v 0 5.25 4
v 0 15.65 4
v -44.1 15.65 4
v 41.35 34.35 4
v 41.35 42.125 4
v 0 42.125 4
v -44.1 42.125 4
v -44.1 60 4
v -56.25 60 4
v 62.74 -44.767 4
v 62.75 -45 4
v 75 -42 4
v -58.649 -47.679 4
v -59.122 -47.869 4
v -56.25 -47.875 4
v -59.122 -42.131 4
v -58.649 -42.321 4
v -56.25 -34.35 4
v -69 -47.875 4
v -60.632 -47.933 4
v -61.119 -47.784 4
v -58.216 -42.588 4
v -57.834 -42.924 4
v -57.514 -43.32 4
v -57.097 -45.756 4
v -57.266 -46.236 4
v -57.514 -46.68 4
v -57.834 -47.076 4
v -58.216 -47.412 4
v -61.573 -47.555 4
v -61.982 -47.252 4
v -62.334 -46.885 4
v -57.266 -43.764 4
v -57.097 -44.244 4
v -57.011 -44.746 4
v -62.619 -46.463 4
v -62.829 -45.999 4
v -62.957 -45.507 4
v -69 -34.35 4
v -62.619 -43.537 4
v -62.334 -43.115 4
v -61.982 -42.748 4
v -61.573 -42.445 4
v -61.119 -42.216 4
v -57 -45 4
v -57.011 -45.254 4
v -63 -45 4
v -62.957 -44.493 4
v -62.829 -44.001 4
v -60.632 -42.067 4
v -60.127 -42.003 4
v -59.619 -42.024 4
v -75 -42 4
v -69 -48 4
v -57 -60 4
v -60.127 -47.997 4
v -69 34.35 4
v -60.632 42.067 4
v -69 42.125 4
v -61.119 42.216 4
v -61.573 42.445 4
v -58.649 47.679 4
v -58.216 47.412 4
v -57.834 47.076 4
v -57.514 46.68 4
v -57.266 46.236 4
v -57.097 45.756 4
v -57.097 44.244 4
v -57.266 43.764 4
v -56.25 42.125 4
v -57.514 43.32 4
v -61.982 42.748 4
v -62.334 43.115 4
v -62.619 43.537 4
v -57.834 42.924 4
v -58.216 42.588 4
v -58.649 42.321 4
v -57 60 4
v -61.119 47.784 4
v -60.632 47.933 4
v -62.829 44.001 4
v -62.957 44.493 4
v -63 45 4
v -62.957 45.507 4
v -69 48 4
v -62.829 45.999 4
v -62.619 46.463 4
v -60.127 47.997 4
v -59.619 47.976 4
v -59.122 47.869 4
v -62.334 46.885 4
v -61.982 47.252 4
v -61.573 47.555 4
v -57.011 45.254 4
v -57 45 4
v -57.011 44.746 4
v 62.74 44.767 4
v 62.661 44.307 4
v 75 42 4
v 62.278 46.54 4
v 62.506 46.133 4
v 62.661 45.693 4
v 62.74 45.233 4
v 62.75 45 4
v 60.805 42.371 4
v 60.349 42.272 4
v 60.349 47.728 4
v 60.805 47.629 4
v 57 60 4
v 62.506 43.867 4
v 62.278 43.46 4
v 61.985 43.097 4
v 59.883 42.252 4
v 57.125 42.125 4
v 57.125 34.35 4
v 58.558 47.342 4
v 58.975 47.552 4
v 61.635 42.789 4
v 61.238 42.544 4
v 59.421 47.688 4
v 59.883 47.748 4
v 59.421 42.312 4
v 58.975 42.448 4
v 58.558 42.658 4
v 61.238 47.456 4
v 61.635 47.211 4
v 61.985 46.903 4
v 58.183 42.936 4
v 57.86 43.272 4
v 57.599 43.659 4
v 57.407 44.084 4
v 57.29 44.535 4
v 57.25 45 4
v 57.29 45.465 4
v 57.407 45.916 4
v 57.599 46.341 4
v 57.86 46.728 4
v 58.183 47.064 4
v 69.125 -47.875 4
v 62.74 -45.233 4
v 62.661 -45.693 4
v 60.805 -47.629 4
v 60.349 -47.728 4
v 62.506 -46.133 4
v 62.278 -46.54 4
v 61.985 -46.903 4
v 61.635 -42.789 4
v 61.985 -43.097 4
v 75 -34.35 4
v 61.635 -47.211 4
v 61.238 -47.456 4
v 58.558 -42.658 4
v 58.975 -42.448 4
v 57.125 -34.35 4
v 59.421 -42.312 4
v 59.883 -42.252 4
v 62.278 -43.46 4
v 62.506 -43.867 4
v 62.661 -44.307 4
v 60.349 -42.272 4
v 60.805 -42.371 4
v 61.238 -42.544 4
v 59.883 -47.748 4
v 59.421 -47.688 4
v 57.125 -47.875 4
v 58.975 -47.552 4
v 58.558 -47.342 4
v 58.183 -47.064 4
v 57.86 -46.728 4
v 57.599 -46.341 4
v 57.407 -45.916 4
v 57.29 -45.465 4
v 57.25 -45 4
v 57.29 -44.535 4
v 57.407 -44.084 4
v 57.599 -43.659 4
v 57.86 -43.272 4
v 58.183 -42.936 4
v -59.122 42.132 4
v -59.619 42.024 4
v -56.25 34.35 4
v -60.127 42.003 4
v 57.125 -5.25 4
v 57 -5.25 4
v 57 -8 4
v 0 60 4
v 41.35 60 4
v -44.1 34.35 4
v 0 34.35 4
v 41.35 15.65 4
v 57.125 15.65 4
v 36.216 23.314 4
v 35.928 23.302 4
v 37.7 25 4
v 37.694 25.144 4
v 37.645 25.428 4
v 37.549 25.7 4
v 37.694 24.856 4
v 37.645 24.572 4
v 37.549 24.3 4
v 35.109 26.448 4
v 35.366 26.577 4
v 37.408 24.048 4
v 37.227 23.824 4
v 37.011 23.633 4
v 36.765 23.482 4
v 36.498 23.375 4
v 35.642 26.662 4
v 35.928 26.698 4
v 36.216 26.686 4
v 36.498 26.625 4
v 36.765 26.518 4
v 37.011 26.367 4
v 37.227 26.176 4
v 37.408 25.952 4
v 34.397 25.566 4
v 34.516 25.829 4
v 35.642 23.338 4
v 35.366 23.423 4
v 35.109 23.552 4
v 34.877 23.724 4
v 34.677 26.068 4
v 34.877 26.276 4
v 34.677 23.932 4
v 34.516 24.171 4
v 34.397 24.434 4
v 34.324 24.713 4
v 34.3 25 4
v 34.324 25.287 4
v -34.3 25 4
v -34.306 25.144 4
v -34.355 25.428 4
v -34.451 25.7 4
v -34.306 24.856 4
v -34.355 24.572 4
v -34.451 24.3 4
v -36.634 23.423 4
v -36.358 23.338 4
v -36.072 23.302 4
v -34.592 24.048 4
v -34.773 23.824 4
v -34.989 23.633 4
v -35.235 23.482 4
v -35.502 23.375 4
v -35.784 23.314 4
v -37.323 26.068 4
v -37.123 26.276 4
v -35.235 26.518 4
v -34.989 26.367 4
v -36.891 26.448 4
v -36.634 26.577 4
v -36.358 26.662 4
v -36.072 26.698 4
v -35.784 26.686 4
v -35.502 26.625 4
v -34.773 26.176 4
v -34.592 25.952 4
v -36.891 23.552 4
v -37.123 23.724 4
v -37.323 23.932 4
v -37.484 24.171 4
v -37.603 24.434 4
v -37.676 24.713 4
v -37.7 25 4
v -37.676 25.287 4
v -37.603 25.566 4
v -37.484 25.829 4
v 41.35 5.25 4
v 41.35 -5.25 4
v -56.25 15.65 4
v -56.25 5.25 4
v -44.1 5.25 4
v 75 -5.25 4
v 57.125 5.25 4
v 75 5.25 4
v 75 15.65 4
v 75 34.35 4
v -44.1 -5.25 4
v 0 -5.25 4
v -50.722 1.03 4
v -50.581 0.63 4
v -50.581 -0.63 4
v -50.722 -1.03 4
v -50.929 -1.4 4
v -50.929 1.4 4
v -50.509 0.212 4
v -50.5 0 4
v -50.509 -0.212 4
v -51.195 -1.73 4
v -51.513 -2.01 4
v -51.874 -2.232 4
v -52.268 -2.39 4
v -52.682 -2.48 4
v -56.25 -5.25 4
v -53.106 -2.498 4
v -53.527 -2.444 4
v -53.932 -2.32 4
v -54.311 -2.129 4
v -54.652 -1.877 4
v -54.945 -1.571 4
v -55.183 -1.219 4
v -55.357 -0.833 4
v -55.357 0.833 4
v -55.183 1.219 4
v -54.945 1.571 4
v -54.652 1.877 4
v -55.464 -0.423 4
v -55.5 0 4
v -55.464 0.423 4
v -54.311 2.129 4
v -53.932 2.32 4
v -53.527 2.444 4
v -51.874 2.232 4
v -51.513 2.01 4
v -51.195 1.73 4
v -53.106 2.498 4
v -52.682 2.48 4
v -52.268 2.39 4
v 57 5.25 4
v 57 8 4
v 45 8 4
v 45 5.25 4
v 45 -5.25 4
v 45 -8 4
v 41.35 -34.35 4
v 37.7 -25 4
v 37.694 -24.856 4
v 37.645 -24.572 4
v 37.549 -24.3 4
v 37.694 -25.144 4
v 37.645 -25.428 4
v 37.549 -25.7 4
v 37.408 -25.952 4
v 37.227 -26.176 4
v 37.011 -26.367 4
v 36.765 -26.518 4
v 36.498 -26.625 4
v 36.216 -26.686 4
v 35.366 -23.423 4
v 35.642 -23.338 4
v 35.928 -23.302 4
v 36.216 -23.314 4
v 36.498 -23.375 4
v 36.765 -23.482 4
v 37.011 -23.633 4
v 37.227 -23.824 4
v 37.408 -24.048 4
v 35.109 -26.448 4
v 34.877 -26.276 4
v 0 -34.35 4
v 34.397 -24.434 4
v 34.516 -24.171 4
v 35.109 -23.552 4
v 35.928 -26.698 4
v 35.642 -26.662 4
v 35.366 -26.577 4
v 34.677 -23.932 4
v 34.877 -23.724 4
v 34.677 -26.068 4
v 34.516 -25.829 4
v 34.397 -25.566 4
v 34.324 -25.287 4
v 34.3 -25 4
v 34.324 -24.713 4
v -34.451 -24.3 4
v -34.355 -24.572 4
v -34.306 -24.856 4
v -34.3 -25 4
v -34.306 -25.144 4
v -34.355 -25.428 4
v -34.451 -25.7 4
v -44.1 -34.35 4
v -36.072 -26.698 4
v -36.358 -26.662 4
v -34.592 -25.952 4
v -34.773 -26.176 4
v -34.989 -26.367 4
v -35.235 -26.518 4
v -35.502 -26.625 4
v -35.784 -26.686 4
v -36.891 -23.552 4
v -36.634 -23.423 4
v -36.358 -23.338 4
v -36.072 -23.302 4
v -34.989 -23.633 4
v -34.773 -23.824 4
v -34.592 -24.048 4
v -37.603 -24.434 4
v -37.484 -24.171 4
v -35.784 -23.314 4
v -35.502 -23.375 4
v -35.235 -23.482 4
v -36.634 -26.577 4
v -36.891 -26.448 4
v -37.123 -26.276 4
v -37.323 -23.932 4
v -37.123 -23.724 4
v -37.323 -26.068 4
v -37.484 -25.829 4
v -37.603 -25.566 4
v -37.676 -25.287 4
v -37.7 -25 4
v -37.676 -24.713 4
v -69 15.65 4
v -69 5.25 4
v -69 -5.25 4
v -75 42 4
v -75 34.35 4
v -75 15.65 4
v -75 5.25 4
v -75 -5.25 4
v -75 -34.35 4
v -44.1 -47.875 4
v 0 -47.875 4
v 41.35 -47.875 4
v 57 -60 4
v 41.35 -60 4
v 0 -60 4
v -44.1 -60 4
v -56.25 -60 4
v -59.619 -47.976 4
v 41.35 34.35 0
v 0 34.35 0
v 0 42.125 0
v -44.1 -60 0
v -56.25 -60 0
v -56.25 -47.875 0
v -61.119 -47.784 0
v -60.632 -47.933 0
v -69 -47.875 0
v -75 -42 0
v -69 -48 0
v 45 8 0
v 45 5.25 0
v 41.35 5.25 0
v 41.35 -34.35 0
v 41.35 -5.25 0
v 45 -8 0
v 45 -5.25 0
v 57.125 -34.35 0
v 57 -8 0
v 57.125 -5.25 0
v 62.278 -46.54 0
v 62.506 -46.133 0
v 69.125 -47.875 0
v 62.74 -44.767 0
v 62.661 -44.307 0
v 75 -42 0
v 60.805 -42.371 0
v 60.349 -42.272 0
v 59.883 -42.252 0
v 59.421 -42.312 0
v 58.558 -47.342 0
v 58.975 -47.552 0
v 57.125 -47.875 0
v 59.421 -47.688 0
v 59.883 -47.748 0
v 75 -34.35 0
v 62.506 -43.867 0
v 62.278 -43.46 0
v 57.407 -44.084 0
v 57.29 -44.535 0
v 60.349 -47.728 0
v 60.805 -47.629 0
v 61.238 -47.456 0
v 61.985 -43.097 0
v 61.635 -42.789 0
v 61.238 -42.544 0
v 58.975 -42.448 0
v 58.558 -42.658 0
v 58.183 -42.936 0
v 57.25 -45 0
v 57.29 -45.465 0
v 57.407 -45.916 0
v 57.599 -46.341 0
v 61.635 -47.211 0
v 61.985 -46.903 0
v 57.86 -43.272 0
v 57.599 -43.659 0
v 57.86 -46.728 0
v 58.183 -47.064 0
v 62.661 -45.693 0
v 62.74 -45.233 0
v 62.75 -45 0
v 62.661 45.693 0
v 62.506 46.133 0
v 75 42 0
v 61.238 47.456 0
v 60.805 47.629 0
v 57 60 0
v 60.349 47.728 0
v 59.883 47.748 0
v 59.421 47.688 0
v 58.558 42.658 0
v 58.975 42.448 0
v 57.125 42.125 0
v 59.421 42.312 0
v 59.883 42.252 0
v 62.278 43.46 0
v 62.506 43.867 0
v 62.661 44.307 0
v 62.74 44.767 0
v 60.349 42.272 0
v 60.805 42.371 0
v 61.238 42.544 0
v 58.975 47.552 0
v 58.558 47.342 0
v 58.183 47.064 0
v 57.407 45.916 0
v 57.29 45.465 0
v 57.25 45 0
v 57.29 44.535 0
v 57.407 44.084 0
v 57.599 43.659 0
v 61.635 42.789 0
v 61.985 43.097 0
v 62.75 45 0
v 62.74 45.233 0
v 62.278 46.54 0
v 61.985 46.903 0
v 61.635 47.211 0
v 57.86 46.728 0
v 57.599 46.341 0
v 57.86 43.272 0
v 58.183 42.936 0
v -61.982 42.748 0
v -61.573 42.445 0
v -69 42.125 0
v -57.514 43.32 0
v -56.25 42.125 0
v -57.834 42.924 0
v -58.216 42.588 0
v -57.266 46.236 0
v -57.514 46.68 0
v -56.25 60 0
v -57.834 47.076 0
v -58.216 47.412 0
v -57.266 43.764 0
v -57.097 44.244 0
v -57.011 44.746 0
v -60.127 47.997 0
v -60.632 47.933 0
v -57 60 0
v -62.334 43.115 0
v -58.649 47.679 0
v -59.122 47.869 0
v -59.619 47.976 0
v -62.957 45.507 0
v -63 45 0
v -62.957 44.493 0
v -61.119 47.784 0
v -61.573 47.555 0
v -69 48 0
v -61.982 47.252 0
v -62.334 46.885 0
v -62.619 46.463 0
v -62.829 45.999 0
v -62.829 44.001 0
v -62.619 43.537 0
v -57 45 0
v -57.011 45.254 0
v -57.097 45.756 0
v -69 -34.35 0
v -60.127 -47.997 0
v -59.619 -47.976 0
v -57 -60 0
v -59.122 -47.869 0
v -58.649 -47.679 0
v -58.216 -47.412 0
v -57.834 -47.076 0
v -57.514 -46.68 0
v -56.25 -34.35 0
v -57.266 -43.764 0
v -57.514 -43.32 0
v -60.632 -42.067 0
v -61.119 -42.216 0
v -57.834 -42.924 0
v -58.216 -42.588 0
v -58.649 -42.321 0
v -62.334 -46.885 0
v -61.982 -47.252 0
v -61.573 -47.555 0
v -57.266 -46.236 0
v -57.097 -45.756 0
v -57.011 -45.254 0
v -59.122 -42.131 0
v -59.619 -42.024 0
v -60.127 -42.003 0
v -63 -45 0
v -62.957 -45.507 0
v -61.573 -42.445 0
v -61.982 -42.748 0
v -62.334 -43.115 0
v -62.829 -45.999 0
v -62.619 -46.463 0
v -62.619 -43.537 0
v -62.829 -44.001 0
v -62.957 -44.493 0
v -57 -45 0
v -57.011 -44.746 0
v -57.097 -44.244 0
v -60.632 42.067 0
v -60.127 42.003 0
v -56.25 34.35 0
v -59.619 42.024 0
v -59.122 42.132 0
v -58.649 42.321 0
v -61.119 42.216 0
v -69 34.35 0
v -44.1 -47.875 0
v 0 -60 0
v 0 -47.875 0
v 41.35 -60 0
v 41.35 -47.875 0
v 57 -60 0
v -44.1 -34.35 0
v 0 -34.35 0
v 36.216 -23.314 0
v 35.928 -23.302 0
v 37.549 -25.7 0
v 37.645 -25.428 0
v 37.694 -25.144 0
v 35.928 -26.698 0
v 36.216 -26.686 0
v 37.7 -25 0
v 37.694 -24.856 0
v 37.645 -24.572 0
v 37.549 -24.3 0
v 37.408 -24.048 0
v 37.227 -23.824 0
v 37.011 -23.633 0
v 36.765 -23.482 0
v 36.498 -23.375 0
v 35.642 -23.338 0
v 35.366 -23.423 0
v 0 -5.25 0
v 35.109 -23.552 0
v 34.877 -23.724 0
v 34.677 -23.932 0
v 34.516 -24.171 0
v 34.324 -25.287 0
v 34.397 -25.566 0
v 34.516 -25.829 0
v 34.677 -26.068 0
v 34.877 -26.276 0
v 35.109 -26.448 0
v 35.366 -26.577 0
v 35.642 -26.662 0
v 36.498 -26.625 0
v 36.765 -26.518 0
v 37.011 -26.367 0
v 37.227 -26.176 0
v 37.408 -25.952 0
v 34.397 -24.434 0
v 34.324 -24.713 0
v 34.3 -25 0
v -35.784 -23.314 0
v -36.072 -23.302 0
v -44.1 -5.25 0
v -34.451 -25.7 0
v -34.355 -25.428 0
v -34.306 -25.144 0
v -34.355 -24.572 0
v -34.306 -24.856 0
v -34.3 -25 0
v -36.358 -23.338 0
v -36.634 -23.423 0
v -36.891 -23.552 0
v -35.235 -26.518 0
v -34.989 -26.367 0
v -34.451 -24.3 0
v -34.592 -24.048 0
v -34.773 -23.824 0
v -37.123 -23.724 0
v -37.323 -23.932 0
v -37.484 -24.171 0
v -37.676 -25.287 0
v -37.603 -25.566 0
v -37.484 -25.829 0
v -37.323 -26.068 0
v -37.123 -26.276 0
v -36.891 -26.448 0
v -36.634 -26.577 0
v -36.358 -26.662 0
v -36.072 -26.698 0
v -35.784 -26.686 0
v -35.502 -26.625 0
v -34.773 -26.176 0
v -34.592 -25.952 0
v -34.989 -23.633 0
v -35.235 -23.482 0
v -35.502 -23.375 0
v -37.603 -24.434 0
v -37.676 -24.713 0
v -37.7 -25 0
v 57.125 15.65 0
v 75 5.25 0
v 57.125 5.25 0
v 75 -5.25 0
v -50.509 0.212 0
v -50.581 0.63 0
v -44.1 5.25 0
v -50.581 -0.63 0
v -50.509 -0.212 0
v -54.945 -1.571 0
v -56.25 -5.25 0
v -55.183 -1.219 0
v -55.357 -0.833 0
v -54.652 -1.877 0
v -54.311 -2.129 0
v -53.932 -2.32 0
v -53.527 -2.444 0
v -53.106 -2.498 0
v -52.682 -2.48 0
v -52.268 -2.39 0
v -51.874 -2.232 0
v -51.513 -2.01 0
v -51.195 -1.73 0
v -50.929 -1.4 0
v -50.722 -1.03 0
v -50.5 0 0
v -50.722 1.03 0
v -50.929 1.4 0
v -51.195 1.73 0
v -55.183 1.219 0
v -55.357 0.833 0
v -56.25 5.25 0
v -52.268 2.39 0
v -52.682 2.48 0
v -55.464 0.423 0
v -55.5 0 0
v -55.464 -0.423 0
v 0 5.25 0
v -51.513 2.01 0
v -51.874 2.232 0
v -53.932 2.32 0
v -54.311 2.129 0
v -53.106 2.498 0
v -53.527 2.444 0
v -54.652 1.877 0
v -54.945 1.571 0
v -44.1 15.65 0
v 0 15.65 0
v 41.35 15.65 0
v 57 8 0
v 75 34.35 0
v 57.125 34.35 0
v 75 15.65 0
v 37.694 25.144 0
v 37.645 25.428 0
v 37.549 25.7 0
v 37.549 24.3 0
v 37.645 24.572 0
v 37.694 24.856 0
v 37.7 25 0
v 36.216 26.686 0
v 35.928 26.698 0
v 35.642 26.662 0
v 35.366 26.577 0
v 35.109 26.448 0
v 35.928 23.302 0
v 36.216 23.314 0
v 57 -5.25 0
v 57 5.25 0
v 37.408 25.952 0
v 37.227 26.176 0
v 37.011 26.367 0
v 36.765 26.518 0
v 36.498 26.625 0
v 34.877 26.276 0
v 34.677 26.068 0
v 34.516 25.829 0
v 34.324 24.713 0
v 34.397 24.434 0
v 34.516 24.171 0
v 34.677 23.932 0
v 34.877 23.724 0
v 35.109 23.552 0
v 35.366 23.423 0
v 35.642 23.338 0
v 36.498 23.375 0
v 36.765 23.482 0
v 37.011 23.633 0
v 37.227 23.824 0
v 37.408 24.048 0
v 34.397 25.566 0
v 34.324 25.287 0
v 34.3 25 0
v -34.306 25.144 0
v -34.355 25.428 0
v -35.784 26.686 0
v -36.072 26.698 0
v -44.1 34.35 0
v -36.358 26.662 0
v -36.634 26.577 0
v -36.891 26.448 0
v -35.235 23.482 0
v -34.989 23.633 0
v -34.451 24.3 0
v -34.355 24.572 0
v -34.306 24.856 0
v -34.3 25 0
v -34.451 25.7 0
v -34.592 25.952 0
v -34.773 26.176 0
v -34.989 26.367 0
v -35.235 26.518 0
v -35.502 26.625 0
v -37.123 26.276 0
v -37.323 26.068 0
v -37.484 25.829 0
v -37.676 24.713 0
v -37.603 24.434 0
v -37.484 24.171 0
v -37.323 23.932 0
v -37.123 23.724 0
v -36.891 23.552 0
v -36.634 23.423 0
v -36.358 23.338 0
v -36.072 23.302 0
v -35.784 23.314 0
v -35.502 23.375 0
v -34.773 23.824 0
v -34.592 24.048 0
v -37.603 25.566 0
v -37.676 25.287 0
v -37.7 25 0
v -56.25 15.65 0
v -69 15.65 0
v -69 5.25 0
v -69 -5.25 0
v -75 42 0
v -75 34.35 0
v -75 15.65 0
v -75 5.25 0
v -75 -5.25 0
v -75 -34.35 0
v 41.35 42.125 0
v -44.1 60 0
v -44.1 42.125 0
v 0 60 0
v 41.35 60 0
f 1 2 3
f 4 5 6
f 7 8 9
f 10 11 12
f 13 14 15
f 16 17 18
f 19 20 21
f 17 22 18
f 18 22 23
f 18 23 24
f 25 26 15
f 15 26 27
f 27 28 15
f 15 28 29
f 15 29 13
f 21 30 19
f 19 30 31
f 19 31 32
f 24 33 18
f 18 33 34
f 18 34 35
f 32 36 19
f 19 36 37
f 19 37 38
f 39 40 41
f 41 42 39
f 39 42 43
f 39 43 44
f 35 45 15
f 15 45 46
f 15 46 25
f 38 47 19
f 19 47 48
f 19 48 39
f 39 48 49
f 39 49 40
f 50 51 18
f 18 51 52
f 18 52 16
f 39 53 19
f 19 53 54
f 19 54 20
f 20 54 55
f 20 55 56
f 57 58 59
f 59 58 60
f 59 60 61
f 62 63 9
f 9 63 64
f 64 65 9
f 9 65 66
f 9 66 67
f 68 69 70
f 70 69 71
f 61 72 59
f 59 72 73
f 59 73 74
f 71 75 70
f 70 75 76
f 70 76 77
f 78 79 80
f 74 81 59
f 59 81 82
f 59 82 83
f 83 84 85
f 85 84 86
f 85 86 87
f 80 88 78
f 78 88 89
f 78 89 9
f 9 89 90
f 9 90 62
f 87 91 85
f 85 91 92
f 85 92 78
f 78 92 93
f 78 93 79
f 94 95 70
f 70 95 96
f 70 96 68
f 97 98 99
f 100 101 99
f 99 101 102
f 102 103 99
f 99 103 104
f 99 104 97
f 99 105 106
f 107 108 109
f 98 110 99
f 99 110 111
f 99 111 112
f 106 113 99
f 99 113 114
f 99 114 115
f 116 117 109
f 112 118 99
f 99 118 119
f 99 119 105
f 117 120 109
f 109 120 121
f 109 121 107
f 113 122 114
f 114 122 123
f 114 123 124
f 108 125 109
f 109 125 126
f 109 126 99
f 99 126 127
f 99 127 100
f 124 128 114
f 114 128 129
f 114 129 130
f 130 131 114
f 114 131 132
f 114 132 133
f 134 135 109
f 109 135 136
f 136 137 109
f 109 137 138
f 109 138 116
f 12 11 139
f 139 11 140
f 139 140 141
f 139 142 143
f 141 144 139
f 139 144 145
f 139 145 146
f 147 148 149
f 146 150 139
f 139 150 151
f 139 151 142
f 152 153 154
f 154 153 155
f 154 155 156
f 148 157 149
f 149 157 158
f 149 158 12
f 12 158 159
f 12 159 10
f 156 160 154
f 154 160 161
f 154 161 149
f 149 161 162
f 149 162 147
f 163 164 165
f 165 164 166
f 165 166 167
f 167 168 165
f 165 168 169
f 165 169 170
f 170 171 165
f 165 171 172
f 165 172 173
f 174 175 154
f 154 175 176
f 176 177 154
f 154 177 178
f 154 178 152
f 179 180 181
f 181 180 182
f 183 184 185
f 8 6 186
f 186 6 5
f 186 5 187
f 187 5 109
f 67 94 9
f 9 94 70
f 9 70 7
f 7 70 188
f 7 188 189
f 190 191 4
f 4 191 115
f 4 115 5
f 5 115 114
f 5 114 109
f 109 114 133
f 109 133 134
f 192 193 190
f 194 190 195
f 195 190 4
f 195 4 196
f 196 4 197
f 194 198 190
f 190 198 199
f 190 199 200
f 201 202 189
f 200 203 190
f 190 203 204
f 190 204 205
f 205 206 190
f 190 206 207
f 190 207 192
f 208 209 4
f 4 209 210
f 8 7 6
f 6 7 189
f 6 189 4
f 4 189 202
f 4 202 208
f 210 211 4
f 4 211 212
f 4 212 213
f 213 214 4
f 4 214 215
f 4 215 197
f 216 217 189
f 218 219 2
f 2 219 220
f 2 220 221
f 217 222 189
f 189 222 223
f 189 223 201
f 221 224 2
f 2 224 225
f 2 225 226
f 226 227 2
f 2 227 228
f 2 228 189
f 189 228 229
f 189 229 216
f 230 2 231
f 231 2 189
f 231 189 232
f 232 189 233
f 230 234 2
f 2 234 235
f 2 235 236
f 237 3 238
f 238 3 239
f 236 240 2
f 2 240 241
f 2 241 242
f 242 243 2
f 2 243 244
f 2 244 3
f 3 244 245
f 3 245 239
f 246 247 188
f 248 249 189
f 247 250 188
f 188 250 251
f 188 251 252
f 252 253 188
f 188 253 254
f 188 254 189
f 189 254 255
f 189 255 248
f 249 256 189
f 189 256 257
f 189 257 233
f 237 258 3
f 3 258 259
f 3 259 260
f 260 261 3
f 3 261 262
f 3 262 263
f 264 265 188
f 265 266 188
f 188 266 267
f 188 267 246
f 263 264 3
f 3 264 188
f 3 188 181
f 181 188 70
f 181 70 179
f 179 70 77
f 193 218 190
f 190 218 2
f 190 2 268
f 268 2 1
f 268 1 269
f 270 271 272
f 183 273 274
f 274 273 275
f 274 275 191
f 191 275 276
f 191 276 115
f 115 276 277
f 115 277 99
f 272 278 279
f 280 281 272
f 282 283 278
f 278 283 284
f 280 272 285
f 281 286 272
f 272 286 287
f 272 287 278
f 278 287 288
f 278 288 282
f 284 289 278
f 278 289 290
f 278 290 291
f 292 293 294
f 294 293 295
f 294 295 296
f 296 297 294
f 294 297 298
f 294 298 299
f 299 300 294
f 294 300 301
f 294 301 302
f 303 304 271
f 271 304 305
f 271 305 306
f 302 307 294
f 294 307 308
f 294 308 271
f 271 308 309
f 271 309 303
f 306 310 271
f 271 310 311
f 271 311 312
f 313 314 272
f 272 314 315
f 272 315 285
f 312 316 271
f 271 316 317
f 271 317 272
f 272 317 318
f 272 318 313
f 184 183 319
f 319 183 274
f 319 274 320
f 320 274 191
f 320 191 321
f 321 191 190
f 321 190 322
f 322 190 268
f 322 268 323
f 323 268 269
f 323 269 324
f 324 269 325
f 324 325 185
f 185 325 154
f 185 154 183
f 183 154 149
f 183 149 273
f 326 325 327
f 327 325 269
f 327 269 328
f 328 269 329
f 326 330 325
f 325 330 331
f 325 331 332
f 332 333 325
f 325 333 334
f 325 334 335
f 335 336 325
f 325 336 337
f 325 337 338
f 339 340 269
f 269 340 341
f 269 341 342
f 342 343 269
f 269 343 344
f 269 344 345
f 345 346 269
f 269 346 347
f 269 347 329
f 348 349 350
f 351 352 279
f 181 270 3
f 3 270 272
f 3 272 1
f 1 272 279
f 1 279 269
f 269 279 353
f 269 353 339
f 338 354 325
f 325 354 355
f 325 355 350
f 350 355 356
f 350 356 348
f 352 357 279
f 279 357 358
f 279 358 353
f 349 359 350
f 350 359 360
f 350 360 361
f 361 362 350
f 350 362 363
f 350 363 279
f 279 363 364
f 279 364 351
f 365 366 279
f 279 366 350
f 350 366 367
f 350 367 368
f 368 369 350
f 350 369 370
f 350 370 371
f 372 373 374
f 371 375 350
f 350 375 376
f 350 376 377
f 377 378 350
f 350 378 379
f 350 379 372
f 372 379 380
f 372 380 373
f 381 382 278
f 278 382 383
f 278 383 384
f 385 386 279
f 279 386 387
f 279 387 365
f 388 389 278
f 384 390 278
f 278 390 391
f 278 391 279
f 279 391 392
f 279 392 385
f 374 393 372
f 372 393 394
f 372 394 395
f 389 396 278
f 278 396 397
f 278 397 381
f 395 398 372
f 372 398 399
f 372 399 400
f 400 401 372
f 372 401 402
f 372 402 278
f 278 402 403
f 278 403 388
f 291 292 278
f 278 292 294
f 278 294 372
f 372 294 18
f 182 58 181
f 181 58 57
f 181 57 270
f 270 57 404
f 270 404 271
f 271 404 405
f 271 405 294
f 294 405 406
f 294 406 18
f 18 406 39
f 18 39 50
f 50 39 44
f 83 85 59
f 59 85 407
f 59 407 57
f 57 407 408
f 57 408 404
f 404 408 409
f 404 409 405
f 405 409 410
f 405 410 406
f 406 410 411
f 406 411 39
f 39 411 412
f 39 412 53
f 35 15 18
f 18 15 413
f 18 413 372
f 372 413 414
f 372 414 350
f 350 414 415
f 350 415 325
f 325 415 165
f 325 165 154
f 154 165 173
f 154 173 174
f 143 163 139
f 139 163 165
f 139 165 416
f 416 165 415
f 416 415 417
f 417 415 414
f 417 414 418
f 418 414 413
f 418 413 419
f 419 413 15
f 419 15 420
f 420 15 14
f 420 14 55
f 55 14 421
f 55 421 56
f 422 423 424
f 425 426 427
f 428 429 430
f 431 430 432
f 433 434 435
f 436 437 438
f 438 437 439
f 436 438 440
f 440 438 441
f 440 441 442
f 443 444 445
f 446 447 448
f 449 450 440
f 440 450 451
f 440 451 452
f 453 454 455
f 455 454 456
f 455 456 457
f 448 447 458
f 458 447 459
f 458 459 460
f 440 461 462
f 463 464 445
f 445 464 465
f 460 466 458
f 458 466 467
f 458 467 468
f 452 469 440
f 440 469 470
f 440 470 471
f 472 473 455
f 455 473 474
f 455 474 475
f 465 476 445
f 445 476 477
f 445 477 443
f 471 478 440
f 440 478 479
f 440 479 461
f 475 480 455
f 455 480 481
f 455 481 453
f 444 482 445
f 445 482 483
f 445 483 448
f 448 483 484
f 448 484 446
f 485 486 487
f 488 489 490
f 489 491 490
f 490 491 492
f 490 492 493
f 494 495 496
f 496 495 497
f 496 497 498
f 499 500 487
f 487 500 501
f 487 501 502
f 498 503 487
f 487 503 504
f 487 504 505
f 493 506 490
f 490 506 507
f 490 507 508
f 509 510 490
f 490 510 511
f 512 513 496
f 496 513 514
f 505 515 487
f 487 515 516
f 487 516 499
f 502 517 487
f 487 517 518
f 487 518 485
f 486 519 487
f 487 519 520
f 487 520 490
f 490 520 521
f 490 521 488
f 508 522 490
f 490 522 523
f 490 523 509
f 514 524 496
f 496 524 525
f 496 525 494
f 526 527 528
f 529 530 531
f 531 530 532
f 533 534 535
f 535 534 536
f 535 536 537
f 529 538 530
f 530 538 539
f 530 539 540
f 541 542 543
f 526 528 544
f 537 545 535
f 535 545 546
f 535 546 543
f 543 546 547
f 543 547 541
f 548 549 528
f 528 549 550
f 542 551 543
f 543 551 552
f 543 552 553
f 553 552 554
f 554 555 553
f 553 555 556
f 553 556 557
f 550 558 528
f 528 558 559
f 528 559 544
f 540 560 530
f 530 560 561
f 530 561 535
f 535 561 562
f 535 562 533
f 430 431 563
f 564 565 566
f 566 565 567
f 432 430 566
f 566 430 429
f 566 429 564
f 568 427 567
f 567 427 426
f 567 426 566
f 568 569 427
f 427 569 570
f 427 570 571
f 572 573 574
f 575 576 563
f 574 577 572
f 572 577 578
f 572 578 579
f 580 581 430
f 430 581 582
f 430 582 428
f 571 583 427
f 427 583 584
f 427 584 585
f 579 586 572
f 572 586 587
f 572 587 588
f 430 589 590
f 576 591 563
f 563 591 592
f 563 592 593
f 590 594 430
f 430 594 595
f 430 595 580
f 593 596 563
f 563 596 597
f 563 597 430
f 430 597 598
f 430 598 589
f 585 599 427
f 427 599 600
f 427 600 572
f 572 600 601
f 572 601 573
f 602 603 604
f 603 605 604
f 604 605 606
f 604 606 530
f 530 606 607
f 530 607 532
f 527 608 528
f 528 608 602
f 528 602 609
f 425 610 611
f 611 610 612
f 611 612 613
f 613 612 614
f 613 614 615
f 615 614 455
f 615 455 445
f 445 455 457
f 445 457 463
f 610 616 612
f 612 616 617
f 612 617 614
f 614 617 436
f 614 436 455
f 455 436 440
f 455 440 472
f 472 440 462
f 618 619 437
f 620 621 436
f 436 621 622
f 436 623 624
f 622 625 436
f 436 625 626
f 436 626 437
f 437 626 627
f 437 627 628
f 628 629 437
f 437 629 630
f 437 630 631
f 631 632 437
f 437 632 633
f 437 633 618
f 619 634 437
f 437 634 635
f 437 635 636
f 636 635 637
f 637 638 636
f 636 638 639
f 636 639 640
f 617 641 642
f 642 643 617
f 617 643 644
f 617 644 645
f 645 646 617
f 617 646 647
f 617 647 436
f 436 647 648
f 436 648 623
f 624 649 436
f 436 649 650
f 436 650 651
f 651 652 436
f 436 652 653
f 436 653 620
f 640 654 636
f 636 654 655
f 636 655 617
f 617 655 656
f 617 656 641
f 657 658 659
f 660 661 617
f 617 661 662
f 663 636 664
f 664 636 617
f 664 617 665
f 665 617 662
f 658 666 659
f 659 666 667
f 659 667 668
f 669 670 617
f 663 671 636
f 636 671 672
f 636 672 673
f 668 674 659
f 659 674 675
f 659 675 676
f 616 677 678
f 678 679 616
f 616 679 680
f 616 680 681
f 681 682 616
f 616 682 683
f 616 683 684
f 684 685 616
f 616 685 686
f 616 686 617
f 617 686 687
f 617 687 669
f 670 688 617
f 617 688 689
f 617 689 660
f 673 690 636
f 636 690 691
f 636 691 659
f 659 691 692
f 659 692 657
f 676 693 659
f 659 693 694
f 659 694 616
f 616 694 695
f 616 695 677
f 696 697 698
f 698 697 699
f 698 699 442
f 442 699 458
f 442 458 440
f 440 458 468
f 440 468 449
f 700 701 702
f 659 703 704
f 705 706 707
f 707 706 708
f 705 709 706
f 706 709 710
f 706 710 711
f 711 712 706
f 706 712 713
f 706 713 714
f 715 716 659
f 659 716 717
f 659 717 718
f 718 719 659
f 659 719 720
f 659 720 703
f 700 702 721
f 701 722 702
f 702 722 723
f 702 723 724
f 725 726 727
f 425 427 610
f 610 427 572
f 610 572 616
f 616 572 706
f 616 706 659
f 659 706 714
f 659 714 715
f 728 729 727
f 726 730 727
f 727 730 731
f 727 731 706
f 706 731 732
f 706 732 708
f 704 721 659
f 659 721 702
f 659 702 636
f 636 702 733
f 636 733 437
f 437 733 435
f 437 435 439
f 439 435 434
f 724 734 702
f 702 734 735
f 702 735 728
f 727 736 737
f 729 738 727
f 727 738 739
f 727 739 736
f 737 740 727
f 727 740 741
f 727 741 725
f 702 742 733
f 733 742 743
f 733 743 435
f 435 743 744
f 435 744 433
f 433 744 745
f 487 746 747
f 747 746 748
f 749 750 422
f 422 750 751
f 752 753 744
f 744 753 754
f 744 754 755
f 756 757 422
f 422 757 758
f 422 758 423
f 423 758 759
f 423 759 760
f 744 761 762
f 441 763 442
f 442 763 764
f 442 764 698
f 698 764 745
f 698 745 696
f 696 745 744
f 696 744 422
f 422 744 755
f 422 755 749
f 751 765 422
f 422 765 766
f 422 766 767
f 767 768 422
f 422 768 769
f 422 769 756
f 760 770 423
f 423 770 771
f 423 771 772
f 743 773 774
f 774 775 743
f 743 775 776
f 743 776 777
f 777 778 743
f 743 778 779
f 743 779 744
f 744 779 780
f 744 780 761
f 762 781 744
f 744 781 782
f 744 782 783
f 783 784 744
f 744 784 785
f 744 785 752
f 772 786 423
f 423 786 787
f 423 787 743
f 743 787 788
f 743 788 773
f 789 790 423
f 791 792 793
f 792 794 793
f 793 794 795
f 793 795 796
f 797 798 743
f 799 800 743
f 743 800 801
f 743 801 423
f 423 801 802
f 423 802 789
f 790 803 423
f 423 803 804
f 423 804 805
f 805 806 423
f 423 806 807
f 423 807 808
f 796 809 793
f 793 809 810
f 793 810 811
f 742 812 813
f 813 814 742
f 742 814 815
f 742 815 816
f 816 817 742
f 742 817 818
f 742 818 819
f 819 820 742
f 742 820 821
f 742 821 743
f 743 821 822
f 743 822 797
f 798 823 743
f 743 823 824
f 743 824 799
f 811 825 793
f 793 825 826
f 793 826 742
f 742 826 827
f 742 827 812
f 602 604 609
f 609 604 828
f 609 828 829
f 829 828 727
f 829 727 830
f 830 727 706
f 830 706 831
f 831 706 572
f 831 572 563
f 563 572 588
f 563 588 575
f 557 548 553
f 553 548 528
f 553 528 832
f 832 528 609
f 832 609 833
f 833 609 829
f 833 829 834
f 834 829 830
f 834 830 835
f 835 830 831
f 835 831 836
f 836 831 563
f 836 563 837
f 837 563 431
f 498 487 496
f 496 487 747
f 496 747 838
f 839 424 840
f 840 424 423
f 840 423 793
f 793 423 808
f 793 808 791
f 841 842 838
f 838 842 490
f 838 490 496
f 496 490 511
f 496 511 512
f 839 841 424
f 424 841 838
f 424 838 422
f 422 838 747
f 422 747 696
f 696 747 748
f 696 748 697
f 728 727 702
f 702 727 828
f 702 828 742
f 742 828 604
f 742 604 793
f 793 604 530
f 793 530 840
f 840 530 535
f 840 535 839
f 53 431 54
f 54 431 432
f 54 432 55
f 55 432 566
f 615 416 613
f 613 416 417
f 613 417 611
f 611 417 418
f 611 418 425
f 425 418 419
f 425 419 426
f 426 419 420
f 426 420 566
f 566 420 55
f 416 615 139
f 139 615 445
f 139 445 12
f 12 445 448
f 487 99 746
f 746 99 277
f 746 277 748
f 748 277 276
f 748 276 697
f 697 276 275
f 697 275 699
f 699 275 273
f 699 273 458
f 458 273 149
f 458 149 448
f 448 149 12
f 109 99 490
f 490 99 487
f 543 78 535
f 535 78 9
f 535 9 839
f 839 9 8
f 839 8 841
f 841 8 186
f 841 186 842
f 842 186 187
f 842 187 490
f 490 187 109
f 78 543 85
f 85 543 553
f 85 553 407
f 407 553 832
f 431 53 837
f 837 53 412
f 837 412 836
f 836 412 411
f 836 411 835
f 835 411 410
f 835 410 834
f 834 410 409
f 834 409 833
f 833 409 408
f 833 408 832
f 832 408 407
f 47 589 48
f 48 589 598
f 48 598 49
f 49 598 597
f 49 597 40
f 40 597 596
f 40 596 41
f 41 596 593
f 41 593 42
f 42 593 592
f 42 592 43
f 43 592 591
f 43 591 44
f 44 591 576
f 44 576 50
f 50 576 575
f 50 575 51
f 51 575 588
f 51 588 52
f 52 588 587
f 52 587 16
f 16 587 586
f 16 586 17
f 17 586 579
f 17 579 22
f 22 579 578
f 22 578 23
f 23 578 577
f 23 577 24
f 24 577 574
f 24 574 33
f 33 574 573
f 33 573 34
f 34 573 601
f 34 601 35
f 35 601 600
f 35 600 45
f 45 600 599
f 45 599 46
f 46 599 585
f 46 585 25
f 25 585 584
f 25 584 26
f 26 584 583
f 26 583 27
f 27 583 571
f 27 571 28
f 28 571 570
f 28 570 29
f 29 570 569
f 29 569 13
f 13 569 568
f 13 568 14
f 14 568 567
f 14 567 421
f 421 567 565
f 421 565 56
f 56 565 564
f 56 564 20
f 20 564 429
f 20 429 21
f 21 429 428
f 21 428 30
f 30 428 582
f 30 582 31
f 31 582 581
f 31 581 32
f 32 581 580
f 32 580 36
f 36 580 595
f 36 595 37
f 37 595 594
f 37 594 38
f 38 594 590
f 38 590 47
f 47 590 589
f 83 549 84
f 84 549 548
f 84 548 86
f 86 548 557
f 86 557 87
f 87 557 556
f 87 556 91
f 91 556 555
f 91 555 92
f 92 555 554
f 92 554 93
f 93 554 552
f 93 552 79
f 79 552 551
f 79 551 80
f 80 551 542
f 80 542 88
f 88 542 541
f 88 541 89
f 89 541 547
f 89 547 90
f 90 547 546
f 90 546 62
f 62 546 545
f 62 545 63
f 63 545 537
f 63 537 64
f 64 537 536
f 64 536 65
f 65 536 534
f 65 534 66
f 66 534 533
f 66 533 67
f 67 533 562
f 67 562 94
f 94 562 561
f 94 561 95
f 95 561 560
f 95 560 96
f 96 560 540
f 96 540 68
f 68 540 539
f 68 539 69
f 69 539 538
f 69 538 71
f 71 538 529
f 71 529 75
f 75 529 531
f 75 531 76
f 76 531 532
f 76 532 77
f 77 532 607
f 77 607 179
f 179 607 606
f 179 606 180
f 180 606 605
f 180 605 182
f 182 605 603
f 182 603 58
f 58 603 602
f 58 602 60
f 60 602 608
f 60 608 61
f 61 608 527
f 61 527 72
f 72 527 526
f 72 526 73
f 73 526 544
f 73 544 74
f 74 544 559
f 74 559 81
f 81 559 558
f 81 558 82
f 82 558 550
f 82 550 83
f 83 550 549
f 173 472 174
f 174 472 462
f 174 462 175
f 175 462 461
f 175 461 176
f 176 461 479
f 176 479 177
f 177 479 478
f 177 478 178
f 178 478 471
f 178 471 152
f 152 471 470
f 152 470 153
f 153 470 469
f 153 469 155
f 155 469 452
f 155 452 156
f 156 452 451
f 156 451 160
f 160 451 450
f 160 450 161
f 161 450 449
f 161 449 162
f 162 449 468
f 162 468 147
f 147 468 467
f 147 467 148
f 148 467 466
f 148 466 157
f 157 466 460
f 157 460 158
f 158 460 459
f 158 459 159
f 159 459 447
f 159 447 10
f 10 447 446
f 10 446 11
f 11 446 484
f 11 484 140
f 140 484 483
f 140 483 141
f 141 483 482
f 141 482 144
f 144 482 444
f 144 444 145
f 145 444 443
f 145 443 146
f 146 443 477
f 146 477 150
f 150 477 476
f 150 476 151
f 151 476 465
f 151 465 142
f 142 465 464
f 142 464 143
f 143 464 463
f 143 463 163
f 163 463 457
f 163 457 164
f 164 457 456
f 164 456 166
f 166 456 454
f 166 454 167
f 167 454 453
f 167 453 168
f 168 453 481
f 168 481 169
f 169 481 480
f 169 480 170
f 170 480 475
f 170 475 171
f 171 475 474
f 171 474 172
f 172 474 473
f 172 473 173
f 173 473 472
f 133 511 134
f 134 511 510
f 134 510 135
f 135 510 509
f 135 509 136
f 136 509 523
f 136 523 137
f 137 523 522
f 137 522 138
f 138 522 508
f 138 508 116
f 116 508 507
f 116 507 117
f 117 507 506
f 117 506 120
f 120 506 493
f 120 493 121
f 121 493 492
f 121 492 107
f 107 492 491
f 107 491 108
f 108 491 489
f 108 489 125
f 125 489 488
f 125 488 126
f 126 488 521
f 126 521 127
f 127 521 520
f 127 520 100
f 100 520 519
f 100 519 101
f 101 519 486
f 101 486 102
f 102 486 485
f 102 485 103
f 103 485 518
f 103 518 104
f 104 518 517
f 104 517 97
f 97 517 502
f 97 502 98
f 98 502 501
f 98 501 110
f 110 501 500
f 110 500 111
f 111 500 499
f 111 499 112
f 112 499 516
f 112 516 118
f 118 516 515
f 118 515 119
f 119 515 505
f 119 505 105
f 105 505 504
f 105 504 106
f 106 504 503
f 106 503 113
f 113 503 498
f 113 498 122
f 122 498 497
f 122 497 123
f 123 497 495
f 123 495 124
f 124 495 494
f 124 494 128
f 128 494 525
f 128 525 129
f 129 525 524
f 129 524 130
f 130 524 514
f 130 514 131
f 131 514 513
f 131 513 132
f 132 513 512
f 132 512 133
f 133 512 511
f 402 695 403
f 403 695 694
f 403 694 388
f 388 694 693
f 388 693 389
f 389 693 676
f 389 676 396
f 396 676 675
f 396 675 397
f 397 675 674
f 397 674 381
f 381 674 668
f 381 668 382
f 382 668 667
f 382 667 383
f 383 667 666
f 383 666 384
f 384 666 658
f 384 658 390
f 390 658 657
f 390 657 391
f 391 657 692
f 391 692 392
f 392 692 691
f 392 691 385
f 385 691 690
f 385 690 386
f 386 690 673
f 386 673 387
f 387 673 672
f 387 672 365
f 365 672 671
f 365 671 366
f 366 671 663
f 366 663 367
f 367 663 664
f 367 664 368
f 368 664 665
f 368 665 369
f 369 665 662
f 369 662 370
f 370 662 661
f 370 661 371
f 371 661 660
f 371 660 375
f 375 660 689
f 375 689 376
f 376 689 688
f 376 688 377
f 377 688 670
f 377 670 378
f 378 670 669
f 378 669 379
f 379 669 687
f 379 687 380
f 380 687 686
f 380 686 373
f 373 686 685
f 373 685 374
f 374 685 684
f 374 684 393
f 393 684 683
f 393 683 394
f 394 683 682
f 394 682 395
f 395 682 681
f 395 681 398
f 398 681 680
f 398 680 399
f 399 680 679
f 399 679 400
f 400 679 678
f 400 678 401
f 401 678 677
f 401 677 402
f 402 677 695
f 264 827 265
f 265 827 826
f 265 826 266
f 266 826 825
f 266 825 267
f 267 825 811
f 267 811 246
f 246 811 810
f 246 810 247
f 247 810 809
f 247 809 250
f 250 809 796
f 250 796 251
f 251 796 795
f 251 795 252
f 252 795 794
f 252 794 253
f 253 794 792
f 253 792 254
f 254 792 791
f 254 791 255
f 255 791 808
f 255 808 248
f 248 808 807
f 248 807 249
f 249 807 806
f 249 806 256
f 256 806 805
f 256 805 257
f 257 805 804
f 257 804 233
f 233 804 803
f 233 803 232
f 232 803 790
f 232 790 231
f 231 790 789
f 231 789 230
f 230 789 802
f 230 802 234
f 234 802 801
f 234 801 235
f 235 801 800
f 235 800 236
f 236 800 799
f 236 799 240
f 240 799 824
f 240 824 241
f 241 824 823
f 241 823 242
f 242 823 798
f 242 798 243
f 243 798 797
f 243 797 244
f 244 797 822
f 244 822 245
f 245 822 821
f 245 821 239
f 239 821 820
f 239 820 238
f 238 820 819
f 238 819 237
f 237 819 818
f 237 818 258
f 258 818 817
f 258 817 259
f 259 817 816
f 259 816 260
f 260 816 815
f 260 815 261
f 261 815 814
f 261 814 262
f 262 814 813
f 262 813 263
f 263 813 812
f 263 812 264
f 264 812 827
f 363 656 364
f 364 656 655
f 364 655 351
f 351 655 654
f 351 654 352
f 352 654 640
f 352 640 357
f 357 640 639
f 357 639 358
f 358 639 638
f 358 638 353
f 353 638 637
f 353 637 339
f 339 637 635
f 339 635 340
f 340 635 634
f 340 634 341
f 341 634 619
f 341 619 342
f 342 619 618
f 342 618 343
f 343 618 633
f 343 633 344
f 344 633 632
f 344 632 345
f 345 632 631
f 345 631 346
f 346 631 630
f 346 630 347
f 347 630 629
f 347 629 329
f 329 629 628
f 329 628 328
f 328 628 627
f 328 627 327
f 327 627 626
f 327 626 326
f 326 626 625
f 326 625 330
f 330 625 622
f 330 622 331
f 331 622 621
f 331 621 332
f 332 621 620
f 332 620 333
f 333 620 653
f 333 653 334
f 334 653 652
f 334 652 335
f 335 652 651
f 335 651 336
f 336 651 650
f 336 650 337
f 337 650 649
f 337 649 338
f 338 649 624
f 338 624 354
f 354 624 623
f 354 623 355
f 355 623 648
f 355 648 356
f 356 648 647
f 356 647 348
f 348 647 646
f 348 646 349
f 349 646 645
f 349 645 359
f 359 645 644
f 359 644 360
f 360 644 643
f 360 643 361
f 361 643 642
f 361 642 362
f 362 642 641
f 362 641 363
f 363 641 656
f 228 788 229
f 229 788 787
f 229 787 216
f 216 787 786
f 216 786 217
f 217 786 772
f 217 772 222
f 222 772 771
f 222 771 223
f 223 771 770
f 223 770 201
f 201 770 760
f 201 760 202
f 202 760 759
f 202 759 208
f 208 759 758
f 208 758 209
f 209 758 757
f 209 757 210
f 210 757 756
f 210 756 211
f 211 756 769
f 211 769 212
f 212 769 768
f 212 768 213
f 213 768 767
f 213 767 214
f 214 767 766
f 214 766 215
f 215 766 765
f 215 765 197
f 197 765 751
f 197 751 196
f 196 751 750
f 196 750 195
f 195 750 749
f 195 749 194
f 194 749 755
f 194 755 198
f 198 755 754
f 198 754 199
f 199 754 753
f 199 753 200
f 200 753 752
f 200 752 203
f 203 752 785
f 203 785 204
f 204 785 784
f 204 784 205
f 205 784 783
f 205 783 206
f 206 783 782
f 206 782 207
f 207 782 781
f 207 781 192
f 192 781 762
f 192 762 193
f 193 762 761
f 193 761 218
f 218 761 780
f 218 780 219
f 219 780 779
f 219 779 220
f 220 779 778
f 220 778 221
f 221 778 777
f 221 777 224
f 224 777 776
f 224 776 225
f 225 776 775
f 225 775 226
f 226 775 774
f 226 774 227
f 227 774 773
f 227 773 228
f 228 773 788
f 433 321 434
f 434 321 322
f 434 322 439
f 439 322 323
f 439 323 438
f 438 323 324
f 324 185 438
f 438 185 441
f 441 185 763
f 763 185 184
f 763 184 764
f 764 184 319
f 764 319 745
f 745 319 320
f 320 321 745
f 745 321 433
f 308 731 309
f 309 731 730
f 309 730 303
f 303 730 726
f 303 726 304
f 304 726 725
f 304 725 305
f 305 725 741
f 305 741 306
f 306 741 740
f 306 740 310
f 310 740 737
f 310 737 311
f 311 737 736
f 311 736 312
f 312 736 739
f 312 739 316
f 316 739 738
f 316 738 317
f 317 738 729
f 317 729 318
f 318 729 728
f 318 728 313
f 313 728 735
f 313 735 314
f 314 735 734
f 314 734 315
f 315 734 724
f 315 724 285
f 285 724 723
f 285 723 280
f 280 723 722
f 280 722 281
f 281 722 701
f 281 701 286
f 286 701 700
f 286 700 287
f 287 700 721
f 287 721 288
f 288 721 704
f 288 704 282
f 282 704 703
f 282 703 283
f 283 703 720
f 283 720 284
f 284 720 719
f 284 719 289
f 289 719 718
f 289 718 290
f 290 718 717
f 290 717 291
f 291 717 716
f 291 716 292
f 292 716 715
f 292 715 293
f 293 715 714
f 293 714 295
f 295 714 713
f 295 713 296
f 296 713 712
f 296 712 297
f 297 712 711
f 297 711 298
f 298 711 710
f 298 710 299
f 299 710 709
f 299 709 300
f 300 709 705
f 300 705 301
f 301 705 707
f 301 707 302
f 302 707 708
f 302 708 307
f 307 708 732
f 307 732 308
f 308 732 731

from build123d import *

# Parameters (mm, degrees)
SKETCH_1_R            = 3
SKETCH_1_R_2          = 2.75
SKETCH_1_R_3          = 1.7
SKETCH_1_R_4          = 2.5
SKETCH_1_W            = 12
SKETCH_1_H            = 16
F_01_CEILING_M5_DEPTH = 4


with BuildPart() as part:
    # Эскиз1 → 01_Ceiling_M5 (new body)
    with BuildSketch(Plane.XY):
        Polygon((-57, -60), (57, -60), (75, -42), (75, 42), (57, 60), (-57, 60), (-75, 42), (-75, -42), align=None)
        with Locations((-60, -45)):
            Circle(SKETCH_1_R, mode=Mode.SUBTRACT)
        with Locations((-60, 45)):
            Circle(SKETCH_1_R, mode=Mode.SUBTRACT)
        with Locations((60, -45)):
            Circle(SKETCH_1_R_2, mode=Mode.SUBTRACT)
        with Locations((60, 45)):
            Circle(SKETCH_1_R_2, mode=Mode.SUBTRACT)
        with Locations((-36, -25)):
            Circle(SKETCH_1_R_3, mode=Mode.SUBTRACT)
        with Locations((-36, 25)):
            Circle(SKETCH_1_R_3, mode=Mode.SUBTRACT)
        with Locations((36, -25)):
            Circle(SKETCH_1_R_3, mode=Mode.SUBTRACT)
        with Locations((36, 25)):
            Circle(SKETCH_1_R_3, mode=Mode.SUBTRACT)
        with Locations((-53, 0)):
            Circle(SKETCH_1_R_4, mode=Mode.SUBTRACT)
        with Locations((51, 0)):
            Rectangle(SKETCH_1_W, SKETCH_1_H, mode=Mode.SUBTRACT)
    extrude(amount=F_01_CEILING_M5_DEPTH)


solid = part.part
